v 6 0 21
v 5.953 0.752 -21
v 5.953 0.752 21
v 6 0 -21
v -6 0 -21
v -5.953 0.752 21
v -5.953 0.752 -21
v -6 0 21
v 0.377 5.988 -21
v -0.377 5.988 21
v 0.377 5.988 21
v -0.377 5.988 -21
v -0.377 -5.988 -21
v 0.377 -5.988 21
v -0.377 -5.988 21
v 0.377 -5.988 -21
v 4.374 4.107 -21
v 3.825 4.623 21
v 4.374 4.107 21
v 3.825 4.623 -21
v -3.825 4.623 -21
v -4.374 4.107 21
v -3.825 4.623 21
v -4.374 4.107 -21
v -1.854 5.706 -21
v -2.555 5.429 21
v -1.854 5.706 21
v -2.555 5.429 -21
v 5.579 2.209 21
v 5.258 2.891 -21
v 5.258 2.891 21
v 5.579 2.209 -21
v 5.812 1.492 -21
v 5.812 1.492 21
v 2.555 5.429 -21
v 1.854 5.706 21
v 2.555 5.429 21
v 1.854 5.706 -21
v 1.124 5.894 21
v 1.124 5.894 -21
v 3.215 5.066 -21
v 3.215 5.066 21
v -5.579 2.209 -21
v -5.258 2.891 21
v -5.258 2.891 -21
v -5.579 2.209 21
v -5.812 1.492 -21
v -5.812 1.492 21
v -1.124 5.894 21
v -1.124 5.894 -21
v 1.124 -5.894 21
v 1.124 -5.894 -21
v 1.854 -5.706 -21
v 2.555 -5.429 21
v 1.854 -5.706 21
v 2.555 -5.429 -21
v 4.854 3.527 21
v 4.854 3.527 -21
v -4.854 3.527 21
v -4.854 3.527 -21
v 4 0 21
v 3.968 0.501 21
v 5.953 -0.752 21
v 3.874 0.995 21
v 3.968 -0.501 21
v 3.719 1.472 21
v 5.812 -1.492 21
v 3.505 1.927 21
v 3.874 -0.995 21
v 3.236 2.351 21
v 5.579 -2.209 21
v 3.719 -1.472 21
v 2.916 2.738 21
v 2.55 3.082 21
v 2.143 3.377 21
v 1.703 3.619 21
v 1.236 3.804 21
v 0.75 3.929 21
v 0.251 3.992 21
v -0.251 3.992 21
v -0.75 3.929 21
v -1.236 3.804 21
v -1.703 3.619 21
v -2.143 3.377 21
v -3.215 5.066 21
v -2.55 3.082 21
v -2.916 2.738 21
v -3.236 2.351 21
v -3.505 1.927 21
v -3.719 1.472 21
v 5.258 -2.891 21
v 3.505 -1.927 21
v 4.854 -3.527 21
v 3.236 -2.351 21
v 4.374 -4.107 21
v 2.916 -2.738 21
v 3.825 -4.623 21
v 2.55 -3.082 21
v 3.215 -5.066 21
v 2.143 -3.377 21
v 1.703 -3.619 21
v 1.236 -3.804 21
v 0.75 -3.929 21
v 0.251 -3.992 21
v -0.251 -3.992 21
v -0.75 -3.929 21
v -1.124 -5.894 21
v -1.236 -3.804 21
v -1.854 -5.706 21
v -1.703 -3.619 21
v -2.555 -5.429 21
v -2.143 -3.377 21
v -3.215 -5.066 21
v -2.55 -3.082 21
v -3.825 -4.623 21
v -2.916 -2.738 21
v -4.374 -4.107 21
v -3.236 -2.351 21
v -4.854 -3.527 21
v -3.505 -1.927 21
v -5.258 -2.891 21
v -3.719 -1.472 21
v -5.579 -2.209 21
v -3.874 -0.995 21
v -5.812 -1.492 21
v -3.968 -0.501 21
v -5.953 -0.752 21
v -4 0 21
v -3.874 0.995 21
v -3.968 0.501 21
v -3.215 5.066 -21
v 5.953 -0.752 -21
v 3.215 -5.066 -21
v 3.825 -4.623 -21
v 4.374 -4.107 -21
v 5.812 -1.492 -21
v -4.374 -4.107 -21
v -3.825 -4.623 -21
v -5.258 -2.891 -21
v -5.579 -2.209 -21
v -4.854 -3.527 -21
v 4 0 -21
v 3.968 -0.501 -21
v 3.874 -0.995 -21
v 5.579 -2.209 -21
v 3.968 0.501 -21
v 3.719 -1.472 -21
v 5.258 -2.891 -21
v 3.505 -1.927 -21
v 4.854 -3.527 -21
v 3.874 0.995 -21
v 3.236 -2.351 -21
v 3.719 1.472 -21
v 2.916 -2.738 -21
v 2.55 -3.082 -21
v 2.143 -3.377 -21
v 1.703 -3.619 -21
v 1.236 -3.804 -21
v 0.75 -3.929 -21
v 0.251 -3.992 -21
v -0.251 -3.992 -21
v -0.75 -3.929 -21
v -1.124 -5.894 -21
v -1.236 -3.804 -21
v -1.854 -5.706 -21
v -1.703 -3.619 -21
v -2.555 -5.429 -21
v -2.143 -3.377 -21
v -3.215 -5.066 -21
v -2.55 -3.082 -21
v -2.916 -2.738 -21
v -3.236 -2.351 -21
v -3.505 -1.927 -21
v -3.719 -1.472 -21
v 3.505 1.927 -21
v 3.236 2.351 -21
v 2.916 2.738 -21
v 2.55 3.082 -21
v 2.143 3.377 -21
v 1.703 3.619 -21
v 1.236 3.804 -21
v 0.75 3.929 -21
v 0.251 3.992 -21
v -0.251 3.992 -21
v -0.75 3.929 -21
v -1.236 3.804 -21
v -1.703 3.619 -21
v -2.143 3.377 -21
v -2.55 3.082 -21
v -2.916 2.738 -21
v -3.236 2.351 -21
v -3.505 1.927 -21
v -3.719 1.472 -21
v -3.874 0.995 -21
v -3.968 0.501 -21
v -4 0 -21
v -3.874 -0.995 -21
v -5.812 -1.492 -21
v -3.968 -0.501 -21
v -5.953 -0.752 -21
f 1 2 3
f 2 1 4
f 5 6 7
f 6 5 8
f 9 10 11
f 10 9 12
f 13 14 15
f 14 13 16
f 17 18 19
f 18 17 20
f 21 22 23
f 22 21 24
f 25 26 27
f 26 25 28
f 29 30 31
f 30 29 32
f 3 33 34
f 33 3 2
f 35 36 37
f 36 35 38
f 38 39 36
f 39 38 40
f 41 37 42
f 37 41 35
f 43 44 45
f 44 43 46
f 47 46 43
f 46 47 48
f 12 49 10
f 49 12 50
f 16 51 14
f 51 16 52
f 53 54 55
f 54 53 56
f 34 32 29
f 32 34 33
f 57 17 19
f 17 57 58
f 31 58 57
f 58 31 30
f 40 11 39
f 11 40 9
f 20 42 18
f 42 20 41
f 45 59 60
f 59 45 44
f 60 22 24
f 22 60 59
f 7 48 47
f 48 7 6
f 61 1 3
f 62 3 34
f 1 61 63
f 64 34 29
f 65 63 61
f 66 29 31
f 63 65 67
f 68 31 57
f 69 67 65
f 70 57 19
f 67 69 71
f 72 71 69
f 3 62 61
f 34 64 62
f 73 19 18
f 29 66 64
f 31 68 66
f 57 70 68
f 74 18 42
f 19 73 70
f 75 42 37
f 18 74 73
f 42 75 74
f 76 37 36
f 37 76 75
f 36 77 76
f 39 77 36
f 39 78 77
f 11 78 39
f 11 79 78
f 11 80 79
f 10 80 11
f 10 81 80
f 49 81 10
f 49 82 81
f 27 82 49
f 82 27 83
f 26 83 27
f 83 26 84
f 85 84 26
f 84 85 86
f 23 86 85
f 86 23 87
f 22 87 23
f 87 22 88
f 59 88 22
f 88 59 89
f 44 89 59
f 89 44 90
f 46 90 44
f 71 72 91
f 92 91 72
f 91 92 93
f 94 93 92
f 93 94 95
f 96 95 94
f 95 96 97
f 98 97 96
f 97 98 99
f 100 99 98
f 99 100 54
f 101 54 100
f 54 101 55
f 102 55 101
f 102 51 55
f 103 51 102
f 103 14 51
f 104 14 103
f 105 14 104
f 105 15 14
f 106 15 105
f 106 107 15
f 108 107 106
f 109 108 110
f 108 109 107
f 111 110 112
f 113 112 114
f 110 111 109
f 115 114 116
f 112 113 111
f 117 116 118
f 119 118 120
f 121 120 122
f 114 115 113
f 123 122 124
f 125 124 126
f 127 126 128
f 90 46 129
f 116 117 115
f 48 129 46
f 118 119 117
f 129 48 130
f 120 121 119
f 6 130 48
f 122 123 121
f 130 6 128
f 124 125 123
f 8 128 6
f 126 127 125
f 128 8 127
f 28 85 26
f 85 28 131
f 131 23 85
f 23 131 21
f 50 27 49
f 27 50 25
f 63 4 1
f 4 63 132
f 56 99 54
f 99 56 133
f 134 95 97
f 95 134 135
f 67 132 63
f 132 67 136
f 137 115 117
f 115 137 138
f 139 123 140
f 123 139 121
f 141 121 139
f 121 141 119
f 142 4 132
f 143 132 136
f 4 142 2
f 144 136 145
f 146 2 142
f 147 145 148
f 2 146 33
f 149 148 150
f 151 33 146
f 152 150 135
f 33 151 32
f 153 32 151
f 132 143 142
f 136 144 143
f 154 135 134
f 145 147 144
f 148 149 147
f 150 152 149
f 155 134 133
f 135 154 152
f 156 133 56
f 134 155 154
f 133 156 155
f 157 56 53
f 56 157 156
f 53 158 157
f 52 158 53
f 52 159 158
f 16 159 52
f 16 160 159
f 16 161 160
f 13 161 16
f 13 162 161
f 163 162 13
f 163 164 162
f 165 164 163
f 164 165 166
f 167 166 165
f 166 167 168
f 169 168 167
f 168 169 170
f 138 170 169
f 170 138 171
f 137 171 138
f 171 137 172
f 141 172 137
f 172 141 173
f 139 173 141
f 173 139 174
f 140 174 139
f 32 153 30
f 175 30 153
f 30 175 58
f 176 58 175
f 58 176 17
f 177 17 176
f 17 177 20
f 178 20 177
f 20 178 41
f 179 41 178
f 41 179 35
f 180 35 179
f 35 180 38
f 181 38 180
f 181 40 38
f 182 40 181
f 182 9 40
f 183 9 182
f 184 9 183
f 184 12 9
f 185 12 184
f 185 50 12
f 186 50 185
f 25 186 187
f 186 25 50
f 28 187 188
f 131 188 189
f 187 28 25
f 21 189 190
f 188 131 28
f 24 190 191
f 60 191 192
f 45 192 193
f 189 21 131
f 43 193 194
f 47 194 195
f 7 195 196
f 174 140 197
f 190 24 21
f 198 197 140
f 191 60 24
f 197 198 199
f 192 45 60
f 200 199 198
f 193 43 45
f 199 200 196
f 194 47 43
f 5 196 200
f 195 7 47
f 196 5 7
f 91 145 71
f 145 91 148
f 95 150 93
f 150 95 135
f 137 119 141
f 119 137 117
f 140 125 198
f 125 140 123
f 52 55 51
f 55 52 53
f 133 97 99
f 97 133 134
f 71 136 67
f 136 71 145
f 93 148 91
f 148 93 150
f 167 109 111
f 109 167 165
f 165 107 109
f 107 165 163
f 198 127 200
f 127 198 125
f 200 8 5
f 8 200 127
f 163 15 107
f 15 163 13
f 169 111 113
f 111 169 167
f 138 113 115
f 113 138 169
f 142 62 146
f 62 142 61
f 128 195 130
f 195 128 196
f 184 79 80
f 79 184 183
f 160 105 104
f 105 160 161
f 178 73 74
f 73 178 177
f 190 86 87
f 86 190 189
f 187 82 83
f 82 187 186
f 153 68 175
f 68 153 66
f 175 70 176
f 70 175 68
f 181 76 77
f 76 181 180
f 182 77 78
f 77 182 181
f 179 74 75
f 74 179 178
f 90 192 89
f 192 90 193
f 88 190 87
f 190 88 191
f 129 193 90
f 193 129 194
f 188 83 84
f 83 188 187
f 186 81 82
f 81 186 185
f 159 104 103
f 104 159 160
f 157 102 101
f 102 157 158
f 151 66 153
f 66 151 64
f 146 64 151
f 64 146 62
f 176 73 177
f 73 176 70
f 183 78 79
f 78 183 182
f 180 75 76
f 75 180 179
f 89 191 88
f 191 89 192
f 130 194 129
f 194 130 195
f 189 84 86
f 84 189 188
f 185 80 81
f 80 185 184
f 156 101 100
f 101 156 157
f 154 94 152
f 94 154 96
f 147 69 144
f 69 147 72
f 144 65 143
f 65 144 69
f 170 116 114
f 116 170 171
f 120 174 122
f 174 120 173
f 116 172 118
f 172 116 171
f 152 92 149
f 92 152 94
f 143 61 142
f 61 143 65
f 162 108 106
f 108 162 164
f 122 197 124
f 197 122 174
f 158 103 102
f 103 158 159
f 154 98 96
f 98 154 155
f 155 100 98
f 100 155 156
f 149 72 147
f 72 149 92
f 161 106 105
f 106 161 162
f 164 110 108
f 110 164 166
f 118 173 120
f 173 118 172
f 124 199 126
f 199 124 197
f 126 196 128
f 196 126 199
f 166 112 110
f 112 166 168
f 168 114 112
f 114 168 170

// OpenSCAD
$fn = 50;


difference() {
	union() {
		translate(v = [0, 0, -21.0000000000]) {
			cylinder(h = 42, r = 6.0000000000);
		}
	}
	union() {
		translate(v = [0, 0, -100.0000000000]) {
			cylinder(h = 200, r = 4);
		}
	}
}
